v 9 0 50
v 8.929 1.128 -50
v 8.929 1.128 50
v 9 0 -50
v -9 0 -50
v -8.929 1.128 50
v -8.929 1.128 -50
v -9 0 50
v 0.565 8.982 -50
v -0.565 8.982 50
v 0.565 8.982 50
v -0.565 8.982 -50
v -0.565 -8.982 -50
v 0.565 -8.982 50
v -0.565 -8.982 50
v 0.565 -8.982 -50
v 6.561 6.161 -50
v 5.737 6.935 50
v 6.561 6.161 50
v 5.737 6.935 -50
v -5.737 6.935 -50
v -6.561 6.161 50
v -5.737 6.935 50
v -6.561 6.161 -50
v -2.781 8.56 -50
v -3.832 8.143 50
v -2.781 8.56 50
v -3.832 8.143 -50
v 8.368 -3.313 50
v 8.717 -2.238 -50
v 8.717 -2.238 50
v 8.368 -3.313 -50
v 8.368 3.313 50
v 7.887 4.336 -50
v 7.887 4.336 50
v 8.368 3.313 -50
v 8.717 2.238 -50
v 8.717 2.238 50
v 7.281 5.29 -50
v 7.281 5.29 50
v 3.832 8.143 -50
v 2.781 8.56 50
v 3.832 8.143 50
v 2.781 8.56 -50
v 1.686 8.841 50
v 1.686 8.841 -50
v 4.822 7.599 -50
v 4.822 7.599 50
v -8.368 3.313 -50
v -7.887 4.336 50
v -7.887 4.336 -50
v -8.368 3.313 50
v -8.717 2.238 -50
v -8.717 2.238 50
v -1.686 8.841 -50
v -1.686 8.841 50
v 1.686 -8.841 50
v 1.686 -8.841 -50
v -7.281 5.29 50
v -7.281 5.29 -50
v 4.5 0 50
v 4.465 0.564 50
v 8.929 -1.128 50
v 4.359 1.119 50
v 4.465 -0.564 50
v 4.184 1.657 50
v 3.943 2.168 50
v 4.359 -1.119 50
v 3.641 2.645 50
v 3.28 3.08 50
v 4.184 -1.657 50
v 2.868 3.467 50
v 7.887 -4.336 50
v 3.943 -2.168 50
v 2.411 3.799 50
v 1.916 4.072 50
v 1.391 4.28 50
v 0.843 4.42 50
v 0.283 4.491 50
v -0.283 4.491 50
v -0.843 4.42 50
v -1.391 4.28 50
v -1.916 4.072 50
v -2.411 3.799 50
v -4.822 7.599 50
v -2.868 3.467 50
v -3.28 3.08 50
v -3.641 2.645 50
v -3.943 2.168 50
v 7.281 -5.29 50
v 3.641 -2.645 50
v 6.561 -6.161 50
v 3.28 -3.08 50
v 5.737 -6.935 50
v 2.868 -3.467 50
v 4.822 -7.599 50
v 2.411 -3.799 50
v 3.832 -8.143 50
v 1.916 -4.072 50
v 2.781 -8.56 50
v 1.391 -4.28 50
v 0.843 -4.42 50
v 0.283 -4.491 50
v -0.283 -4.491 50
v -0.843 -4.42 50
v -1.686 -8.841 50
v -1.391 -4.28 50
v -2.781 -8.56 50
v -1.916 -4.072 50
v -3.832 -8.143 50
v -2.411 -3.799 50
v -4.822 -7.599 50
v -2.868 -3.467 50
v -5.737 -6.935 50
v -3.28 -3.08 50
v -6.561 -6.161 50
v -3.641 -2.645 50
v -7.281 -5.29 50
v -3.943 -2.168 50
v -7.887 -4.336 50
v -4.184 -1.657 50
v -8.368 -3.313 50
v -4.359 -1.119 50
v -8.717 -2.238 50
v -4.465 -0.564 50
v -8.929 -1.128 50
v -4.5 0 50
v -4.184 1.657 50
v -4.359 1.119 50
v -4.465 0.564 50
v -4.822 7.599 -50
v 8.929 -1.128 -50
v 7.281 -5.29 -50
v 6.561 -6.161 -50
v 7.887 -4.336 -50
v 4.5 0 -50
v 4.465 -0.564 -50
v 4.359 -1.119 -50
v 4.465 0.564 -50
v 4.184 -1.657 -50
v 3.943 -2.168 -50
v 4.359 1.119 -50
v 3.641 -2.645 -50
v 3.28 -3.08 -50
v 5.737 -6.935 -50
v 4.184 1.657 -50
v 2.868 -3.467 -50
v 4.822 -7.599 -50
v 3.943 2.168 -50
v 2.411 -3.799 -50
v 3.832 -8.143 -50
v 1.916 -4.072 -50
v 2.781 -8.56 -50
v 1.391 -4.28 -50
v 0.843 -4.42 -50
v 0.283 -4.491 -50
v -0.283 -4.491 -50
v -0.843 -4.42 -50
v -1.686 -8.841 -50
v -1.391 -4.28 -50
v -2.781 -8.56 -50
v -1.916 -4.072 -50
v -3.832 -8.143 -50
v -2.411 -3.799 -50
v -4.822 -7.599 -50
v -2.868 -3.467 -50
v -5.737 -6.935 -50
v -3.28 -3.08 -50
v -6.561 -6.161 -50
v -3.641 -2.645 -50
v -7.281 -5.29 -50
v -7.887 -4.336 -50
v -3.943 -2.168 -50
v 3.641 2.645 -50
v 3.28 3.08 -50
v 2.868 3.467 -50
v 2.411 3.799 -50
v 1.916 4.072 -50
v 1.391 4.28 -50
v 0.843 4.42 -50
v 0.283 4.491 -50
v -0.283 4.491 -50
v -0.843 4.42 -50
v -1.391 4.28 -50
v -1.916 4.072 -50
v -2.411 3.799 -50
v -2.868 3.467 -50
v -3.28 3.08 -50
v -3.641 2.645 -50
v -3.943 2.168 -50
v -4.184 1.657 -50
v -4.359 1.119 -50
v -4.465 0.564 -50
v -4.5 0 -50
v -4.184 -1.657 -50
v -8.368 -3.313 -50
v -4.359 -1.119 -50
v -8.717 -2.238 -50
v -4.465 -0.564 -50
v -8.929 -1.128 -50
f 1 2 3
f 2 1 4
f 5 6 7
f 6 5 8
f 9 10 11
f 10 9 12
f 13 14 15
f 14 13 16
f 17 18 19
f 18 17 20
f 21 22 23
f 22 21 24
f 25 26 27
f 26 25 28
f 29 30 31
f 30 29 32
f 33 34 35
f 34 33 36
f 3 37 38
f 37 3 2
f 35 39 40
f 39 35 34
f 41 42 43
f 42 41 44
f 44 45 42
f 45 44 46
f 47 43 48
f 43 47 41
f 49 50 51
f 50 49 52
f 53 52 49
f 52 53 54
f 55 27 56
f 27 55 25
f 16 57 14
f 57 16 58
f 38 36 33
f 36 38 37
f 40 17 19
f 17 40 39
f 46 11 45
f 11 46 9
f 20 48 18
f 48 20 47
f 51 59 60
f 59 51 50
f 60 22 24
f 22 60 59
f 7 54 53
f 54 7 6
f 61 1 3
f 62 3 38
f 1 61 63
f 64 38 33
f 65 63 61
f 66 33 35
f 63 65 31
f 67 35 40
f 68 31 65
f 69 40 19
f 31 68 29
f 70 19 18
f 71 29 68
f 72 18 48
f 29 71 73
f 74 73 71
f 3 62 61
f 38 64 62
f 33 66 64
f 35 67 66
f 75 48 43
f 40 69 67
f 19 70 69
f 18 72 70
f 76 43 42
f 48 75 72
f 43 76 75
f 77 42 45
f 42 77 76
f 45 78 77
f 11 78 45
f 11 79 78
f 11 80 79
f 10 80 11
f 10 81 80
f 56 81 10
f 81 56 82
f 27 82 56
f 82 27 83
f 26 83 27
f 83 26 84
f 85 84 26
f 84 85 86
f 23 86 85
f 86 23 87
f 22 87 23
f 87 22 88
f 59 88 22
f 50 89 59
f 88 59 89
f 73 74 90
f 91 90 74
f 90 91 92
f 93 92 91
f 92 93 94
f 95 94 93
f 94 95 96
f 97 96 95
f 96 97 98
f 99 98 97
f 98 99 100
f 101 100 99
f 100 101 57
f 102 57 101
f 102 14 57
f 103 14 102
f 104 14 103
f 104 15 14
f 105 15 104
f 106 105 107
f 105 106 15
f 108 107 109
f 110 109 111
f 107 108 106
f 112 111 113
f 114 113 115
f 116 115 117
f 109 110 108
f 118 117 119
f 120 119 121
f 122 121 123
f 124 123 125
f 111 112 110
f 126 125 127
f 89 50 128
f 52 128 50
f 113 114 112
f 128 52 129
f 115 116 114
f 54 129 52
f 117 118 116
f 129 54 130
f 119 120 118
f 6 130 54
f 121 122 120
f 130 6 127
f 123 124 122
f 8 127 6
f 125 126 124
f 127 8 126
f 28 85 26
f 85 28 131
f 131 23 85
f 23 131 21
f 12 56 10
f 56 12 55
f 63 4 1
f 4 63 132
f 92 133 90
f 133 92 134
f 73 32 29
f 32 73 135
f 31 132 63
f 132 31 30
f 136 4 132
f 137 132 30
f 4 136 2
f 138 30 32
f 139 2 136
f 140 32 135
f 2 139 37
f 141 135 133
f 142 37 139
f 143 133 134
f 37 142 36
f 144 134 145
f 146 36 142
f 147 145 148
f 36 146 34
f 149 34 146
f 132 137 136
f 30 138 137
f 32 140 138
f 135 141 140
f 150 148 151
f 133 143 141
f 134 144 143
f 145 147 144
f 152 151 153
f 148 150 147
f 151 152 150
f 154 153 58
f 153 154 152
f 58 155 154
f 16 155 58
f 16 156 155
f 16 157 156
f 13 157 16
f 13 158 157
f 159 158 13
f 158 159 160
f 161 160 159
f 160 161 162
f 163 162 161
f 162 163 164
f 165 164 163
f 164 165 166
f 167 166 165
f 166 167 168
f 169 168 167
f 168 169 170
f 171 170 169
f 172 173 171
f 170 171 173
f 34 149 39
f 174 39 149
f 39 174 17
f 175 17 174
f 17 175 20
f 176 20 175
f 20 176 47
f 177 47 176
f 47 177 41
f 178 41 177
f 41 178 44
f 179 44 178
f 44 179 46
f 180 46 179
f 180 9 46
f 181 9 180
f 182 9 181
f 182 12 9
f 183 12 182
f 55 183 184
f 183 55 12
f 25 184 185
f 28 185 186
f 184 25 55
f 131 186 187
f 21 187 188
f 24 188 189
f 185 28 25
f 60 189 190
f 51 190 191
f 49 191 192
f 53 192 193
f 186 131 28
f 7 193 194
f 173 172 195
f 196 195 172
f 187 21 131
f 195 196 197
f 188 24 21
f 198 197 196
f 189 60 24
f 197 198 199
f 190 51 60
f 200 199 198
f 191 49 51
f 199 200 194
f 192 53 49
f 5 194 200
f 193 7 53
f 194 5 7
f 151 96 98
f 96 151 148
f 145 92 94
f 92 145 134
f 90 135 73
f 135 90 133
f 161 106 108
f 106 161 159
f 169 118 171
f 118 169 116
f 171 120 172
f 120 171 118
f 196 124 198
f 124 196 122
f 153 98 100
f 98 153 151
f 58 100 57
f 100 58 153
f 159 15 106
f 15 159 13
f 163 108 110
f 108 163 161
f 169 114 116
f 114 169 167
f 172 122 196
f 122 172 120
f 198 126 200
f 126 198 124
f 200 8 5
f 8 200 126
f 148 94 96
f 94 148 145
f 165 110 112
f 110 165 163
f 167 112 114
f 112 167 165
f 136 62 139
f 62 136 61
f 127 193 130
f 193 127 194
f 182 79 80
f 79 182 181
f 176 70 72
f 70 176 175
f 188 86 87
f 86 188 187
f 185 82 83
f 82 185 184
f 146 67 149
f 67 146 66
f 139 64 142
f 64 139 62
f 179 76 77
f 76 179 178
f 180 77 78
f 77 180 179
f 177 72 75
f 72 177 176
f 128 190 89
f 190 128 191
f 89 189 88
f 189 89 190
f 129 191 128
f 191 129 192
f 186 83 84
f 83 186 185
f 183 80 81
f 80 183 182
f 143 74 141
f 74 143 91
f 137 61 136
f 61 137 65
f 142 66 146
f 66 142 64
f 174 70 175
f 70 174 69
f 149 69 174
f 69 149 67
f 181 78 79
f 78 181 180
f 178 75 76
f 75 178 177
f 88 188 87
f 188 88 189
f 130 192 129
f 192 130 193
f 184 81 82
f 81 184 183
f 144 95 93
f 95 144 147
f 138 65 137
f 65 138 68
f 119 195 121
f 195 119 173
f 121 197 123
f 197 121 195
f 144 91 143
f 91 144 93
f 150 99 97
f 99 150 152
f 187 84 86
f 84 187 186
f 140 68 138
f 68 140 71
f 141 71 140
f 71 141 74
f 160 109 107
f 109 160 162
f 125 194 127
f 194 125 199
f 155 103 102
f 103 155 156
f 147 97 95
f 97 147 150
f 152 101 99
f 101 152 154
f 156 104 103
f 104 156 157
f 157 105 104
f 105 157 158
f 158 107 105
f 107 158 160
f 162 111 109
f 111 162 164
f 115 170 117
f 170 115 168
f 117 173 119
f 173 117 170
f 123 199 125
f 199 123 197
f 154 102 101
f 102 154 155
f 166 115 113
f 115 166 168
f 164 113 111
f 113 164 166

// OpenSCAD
$fn = 50;


difference() {
	union() {
		translate(v = [0, 0, -50.0000000000]) {
			cylinder(h = 100, r = 9.0000000000);
		}
	}
	union() {
		translate(v = [0, 0, -100.0000000000]) {
			cylinder(h = 200, r = 4.5000000000);
		}
	}
}
